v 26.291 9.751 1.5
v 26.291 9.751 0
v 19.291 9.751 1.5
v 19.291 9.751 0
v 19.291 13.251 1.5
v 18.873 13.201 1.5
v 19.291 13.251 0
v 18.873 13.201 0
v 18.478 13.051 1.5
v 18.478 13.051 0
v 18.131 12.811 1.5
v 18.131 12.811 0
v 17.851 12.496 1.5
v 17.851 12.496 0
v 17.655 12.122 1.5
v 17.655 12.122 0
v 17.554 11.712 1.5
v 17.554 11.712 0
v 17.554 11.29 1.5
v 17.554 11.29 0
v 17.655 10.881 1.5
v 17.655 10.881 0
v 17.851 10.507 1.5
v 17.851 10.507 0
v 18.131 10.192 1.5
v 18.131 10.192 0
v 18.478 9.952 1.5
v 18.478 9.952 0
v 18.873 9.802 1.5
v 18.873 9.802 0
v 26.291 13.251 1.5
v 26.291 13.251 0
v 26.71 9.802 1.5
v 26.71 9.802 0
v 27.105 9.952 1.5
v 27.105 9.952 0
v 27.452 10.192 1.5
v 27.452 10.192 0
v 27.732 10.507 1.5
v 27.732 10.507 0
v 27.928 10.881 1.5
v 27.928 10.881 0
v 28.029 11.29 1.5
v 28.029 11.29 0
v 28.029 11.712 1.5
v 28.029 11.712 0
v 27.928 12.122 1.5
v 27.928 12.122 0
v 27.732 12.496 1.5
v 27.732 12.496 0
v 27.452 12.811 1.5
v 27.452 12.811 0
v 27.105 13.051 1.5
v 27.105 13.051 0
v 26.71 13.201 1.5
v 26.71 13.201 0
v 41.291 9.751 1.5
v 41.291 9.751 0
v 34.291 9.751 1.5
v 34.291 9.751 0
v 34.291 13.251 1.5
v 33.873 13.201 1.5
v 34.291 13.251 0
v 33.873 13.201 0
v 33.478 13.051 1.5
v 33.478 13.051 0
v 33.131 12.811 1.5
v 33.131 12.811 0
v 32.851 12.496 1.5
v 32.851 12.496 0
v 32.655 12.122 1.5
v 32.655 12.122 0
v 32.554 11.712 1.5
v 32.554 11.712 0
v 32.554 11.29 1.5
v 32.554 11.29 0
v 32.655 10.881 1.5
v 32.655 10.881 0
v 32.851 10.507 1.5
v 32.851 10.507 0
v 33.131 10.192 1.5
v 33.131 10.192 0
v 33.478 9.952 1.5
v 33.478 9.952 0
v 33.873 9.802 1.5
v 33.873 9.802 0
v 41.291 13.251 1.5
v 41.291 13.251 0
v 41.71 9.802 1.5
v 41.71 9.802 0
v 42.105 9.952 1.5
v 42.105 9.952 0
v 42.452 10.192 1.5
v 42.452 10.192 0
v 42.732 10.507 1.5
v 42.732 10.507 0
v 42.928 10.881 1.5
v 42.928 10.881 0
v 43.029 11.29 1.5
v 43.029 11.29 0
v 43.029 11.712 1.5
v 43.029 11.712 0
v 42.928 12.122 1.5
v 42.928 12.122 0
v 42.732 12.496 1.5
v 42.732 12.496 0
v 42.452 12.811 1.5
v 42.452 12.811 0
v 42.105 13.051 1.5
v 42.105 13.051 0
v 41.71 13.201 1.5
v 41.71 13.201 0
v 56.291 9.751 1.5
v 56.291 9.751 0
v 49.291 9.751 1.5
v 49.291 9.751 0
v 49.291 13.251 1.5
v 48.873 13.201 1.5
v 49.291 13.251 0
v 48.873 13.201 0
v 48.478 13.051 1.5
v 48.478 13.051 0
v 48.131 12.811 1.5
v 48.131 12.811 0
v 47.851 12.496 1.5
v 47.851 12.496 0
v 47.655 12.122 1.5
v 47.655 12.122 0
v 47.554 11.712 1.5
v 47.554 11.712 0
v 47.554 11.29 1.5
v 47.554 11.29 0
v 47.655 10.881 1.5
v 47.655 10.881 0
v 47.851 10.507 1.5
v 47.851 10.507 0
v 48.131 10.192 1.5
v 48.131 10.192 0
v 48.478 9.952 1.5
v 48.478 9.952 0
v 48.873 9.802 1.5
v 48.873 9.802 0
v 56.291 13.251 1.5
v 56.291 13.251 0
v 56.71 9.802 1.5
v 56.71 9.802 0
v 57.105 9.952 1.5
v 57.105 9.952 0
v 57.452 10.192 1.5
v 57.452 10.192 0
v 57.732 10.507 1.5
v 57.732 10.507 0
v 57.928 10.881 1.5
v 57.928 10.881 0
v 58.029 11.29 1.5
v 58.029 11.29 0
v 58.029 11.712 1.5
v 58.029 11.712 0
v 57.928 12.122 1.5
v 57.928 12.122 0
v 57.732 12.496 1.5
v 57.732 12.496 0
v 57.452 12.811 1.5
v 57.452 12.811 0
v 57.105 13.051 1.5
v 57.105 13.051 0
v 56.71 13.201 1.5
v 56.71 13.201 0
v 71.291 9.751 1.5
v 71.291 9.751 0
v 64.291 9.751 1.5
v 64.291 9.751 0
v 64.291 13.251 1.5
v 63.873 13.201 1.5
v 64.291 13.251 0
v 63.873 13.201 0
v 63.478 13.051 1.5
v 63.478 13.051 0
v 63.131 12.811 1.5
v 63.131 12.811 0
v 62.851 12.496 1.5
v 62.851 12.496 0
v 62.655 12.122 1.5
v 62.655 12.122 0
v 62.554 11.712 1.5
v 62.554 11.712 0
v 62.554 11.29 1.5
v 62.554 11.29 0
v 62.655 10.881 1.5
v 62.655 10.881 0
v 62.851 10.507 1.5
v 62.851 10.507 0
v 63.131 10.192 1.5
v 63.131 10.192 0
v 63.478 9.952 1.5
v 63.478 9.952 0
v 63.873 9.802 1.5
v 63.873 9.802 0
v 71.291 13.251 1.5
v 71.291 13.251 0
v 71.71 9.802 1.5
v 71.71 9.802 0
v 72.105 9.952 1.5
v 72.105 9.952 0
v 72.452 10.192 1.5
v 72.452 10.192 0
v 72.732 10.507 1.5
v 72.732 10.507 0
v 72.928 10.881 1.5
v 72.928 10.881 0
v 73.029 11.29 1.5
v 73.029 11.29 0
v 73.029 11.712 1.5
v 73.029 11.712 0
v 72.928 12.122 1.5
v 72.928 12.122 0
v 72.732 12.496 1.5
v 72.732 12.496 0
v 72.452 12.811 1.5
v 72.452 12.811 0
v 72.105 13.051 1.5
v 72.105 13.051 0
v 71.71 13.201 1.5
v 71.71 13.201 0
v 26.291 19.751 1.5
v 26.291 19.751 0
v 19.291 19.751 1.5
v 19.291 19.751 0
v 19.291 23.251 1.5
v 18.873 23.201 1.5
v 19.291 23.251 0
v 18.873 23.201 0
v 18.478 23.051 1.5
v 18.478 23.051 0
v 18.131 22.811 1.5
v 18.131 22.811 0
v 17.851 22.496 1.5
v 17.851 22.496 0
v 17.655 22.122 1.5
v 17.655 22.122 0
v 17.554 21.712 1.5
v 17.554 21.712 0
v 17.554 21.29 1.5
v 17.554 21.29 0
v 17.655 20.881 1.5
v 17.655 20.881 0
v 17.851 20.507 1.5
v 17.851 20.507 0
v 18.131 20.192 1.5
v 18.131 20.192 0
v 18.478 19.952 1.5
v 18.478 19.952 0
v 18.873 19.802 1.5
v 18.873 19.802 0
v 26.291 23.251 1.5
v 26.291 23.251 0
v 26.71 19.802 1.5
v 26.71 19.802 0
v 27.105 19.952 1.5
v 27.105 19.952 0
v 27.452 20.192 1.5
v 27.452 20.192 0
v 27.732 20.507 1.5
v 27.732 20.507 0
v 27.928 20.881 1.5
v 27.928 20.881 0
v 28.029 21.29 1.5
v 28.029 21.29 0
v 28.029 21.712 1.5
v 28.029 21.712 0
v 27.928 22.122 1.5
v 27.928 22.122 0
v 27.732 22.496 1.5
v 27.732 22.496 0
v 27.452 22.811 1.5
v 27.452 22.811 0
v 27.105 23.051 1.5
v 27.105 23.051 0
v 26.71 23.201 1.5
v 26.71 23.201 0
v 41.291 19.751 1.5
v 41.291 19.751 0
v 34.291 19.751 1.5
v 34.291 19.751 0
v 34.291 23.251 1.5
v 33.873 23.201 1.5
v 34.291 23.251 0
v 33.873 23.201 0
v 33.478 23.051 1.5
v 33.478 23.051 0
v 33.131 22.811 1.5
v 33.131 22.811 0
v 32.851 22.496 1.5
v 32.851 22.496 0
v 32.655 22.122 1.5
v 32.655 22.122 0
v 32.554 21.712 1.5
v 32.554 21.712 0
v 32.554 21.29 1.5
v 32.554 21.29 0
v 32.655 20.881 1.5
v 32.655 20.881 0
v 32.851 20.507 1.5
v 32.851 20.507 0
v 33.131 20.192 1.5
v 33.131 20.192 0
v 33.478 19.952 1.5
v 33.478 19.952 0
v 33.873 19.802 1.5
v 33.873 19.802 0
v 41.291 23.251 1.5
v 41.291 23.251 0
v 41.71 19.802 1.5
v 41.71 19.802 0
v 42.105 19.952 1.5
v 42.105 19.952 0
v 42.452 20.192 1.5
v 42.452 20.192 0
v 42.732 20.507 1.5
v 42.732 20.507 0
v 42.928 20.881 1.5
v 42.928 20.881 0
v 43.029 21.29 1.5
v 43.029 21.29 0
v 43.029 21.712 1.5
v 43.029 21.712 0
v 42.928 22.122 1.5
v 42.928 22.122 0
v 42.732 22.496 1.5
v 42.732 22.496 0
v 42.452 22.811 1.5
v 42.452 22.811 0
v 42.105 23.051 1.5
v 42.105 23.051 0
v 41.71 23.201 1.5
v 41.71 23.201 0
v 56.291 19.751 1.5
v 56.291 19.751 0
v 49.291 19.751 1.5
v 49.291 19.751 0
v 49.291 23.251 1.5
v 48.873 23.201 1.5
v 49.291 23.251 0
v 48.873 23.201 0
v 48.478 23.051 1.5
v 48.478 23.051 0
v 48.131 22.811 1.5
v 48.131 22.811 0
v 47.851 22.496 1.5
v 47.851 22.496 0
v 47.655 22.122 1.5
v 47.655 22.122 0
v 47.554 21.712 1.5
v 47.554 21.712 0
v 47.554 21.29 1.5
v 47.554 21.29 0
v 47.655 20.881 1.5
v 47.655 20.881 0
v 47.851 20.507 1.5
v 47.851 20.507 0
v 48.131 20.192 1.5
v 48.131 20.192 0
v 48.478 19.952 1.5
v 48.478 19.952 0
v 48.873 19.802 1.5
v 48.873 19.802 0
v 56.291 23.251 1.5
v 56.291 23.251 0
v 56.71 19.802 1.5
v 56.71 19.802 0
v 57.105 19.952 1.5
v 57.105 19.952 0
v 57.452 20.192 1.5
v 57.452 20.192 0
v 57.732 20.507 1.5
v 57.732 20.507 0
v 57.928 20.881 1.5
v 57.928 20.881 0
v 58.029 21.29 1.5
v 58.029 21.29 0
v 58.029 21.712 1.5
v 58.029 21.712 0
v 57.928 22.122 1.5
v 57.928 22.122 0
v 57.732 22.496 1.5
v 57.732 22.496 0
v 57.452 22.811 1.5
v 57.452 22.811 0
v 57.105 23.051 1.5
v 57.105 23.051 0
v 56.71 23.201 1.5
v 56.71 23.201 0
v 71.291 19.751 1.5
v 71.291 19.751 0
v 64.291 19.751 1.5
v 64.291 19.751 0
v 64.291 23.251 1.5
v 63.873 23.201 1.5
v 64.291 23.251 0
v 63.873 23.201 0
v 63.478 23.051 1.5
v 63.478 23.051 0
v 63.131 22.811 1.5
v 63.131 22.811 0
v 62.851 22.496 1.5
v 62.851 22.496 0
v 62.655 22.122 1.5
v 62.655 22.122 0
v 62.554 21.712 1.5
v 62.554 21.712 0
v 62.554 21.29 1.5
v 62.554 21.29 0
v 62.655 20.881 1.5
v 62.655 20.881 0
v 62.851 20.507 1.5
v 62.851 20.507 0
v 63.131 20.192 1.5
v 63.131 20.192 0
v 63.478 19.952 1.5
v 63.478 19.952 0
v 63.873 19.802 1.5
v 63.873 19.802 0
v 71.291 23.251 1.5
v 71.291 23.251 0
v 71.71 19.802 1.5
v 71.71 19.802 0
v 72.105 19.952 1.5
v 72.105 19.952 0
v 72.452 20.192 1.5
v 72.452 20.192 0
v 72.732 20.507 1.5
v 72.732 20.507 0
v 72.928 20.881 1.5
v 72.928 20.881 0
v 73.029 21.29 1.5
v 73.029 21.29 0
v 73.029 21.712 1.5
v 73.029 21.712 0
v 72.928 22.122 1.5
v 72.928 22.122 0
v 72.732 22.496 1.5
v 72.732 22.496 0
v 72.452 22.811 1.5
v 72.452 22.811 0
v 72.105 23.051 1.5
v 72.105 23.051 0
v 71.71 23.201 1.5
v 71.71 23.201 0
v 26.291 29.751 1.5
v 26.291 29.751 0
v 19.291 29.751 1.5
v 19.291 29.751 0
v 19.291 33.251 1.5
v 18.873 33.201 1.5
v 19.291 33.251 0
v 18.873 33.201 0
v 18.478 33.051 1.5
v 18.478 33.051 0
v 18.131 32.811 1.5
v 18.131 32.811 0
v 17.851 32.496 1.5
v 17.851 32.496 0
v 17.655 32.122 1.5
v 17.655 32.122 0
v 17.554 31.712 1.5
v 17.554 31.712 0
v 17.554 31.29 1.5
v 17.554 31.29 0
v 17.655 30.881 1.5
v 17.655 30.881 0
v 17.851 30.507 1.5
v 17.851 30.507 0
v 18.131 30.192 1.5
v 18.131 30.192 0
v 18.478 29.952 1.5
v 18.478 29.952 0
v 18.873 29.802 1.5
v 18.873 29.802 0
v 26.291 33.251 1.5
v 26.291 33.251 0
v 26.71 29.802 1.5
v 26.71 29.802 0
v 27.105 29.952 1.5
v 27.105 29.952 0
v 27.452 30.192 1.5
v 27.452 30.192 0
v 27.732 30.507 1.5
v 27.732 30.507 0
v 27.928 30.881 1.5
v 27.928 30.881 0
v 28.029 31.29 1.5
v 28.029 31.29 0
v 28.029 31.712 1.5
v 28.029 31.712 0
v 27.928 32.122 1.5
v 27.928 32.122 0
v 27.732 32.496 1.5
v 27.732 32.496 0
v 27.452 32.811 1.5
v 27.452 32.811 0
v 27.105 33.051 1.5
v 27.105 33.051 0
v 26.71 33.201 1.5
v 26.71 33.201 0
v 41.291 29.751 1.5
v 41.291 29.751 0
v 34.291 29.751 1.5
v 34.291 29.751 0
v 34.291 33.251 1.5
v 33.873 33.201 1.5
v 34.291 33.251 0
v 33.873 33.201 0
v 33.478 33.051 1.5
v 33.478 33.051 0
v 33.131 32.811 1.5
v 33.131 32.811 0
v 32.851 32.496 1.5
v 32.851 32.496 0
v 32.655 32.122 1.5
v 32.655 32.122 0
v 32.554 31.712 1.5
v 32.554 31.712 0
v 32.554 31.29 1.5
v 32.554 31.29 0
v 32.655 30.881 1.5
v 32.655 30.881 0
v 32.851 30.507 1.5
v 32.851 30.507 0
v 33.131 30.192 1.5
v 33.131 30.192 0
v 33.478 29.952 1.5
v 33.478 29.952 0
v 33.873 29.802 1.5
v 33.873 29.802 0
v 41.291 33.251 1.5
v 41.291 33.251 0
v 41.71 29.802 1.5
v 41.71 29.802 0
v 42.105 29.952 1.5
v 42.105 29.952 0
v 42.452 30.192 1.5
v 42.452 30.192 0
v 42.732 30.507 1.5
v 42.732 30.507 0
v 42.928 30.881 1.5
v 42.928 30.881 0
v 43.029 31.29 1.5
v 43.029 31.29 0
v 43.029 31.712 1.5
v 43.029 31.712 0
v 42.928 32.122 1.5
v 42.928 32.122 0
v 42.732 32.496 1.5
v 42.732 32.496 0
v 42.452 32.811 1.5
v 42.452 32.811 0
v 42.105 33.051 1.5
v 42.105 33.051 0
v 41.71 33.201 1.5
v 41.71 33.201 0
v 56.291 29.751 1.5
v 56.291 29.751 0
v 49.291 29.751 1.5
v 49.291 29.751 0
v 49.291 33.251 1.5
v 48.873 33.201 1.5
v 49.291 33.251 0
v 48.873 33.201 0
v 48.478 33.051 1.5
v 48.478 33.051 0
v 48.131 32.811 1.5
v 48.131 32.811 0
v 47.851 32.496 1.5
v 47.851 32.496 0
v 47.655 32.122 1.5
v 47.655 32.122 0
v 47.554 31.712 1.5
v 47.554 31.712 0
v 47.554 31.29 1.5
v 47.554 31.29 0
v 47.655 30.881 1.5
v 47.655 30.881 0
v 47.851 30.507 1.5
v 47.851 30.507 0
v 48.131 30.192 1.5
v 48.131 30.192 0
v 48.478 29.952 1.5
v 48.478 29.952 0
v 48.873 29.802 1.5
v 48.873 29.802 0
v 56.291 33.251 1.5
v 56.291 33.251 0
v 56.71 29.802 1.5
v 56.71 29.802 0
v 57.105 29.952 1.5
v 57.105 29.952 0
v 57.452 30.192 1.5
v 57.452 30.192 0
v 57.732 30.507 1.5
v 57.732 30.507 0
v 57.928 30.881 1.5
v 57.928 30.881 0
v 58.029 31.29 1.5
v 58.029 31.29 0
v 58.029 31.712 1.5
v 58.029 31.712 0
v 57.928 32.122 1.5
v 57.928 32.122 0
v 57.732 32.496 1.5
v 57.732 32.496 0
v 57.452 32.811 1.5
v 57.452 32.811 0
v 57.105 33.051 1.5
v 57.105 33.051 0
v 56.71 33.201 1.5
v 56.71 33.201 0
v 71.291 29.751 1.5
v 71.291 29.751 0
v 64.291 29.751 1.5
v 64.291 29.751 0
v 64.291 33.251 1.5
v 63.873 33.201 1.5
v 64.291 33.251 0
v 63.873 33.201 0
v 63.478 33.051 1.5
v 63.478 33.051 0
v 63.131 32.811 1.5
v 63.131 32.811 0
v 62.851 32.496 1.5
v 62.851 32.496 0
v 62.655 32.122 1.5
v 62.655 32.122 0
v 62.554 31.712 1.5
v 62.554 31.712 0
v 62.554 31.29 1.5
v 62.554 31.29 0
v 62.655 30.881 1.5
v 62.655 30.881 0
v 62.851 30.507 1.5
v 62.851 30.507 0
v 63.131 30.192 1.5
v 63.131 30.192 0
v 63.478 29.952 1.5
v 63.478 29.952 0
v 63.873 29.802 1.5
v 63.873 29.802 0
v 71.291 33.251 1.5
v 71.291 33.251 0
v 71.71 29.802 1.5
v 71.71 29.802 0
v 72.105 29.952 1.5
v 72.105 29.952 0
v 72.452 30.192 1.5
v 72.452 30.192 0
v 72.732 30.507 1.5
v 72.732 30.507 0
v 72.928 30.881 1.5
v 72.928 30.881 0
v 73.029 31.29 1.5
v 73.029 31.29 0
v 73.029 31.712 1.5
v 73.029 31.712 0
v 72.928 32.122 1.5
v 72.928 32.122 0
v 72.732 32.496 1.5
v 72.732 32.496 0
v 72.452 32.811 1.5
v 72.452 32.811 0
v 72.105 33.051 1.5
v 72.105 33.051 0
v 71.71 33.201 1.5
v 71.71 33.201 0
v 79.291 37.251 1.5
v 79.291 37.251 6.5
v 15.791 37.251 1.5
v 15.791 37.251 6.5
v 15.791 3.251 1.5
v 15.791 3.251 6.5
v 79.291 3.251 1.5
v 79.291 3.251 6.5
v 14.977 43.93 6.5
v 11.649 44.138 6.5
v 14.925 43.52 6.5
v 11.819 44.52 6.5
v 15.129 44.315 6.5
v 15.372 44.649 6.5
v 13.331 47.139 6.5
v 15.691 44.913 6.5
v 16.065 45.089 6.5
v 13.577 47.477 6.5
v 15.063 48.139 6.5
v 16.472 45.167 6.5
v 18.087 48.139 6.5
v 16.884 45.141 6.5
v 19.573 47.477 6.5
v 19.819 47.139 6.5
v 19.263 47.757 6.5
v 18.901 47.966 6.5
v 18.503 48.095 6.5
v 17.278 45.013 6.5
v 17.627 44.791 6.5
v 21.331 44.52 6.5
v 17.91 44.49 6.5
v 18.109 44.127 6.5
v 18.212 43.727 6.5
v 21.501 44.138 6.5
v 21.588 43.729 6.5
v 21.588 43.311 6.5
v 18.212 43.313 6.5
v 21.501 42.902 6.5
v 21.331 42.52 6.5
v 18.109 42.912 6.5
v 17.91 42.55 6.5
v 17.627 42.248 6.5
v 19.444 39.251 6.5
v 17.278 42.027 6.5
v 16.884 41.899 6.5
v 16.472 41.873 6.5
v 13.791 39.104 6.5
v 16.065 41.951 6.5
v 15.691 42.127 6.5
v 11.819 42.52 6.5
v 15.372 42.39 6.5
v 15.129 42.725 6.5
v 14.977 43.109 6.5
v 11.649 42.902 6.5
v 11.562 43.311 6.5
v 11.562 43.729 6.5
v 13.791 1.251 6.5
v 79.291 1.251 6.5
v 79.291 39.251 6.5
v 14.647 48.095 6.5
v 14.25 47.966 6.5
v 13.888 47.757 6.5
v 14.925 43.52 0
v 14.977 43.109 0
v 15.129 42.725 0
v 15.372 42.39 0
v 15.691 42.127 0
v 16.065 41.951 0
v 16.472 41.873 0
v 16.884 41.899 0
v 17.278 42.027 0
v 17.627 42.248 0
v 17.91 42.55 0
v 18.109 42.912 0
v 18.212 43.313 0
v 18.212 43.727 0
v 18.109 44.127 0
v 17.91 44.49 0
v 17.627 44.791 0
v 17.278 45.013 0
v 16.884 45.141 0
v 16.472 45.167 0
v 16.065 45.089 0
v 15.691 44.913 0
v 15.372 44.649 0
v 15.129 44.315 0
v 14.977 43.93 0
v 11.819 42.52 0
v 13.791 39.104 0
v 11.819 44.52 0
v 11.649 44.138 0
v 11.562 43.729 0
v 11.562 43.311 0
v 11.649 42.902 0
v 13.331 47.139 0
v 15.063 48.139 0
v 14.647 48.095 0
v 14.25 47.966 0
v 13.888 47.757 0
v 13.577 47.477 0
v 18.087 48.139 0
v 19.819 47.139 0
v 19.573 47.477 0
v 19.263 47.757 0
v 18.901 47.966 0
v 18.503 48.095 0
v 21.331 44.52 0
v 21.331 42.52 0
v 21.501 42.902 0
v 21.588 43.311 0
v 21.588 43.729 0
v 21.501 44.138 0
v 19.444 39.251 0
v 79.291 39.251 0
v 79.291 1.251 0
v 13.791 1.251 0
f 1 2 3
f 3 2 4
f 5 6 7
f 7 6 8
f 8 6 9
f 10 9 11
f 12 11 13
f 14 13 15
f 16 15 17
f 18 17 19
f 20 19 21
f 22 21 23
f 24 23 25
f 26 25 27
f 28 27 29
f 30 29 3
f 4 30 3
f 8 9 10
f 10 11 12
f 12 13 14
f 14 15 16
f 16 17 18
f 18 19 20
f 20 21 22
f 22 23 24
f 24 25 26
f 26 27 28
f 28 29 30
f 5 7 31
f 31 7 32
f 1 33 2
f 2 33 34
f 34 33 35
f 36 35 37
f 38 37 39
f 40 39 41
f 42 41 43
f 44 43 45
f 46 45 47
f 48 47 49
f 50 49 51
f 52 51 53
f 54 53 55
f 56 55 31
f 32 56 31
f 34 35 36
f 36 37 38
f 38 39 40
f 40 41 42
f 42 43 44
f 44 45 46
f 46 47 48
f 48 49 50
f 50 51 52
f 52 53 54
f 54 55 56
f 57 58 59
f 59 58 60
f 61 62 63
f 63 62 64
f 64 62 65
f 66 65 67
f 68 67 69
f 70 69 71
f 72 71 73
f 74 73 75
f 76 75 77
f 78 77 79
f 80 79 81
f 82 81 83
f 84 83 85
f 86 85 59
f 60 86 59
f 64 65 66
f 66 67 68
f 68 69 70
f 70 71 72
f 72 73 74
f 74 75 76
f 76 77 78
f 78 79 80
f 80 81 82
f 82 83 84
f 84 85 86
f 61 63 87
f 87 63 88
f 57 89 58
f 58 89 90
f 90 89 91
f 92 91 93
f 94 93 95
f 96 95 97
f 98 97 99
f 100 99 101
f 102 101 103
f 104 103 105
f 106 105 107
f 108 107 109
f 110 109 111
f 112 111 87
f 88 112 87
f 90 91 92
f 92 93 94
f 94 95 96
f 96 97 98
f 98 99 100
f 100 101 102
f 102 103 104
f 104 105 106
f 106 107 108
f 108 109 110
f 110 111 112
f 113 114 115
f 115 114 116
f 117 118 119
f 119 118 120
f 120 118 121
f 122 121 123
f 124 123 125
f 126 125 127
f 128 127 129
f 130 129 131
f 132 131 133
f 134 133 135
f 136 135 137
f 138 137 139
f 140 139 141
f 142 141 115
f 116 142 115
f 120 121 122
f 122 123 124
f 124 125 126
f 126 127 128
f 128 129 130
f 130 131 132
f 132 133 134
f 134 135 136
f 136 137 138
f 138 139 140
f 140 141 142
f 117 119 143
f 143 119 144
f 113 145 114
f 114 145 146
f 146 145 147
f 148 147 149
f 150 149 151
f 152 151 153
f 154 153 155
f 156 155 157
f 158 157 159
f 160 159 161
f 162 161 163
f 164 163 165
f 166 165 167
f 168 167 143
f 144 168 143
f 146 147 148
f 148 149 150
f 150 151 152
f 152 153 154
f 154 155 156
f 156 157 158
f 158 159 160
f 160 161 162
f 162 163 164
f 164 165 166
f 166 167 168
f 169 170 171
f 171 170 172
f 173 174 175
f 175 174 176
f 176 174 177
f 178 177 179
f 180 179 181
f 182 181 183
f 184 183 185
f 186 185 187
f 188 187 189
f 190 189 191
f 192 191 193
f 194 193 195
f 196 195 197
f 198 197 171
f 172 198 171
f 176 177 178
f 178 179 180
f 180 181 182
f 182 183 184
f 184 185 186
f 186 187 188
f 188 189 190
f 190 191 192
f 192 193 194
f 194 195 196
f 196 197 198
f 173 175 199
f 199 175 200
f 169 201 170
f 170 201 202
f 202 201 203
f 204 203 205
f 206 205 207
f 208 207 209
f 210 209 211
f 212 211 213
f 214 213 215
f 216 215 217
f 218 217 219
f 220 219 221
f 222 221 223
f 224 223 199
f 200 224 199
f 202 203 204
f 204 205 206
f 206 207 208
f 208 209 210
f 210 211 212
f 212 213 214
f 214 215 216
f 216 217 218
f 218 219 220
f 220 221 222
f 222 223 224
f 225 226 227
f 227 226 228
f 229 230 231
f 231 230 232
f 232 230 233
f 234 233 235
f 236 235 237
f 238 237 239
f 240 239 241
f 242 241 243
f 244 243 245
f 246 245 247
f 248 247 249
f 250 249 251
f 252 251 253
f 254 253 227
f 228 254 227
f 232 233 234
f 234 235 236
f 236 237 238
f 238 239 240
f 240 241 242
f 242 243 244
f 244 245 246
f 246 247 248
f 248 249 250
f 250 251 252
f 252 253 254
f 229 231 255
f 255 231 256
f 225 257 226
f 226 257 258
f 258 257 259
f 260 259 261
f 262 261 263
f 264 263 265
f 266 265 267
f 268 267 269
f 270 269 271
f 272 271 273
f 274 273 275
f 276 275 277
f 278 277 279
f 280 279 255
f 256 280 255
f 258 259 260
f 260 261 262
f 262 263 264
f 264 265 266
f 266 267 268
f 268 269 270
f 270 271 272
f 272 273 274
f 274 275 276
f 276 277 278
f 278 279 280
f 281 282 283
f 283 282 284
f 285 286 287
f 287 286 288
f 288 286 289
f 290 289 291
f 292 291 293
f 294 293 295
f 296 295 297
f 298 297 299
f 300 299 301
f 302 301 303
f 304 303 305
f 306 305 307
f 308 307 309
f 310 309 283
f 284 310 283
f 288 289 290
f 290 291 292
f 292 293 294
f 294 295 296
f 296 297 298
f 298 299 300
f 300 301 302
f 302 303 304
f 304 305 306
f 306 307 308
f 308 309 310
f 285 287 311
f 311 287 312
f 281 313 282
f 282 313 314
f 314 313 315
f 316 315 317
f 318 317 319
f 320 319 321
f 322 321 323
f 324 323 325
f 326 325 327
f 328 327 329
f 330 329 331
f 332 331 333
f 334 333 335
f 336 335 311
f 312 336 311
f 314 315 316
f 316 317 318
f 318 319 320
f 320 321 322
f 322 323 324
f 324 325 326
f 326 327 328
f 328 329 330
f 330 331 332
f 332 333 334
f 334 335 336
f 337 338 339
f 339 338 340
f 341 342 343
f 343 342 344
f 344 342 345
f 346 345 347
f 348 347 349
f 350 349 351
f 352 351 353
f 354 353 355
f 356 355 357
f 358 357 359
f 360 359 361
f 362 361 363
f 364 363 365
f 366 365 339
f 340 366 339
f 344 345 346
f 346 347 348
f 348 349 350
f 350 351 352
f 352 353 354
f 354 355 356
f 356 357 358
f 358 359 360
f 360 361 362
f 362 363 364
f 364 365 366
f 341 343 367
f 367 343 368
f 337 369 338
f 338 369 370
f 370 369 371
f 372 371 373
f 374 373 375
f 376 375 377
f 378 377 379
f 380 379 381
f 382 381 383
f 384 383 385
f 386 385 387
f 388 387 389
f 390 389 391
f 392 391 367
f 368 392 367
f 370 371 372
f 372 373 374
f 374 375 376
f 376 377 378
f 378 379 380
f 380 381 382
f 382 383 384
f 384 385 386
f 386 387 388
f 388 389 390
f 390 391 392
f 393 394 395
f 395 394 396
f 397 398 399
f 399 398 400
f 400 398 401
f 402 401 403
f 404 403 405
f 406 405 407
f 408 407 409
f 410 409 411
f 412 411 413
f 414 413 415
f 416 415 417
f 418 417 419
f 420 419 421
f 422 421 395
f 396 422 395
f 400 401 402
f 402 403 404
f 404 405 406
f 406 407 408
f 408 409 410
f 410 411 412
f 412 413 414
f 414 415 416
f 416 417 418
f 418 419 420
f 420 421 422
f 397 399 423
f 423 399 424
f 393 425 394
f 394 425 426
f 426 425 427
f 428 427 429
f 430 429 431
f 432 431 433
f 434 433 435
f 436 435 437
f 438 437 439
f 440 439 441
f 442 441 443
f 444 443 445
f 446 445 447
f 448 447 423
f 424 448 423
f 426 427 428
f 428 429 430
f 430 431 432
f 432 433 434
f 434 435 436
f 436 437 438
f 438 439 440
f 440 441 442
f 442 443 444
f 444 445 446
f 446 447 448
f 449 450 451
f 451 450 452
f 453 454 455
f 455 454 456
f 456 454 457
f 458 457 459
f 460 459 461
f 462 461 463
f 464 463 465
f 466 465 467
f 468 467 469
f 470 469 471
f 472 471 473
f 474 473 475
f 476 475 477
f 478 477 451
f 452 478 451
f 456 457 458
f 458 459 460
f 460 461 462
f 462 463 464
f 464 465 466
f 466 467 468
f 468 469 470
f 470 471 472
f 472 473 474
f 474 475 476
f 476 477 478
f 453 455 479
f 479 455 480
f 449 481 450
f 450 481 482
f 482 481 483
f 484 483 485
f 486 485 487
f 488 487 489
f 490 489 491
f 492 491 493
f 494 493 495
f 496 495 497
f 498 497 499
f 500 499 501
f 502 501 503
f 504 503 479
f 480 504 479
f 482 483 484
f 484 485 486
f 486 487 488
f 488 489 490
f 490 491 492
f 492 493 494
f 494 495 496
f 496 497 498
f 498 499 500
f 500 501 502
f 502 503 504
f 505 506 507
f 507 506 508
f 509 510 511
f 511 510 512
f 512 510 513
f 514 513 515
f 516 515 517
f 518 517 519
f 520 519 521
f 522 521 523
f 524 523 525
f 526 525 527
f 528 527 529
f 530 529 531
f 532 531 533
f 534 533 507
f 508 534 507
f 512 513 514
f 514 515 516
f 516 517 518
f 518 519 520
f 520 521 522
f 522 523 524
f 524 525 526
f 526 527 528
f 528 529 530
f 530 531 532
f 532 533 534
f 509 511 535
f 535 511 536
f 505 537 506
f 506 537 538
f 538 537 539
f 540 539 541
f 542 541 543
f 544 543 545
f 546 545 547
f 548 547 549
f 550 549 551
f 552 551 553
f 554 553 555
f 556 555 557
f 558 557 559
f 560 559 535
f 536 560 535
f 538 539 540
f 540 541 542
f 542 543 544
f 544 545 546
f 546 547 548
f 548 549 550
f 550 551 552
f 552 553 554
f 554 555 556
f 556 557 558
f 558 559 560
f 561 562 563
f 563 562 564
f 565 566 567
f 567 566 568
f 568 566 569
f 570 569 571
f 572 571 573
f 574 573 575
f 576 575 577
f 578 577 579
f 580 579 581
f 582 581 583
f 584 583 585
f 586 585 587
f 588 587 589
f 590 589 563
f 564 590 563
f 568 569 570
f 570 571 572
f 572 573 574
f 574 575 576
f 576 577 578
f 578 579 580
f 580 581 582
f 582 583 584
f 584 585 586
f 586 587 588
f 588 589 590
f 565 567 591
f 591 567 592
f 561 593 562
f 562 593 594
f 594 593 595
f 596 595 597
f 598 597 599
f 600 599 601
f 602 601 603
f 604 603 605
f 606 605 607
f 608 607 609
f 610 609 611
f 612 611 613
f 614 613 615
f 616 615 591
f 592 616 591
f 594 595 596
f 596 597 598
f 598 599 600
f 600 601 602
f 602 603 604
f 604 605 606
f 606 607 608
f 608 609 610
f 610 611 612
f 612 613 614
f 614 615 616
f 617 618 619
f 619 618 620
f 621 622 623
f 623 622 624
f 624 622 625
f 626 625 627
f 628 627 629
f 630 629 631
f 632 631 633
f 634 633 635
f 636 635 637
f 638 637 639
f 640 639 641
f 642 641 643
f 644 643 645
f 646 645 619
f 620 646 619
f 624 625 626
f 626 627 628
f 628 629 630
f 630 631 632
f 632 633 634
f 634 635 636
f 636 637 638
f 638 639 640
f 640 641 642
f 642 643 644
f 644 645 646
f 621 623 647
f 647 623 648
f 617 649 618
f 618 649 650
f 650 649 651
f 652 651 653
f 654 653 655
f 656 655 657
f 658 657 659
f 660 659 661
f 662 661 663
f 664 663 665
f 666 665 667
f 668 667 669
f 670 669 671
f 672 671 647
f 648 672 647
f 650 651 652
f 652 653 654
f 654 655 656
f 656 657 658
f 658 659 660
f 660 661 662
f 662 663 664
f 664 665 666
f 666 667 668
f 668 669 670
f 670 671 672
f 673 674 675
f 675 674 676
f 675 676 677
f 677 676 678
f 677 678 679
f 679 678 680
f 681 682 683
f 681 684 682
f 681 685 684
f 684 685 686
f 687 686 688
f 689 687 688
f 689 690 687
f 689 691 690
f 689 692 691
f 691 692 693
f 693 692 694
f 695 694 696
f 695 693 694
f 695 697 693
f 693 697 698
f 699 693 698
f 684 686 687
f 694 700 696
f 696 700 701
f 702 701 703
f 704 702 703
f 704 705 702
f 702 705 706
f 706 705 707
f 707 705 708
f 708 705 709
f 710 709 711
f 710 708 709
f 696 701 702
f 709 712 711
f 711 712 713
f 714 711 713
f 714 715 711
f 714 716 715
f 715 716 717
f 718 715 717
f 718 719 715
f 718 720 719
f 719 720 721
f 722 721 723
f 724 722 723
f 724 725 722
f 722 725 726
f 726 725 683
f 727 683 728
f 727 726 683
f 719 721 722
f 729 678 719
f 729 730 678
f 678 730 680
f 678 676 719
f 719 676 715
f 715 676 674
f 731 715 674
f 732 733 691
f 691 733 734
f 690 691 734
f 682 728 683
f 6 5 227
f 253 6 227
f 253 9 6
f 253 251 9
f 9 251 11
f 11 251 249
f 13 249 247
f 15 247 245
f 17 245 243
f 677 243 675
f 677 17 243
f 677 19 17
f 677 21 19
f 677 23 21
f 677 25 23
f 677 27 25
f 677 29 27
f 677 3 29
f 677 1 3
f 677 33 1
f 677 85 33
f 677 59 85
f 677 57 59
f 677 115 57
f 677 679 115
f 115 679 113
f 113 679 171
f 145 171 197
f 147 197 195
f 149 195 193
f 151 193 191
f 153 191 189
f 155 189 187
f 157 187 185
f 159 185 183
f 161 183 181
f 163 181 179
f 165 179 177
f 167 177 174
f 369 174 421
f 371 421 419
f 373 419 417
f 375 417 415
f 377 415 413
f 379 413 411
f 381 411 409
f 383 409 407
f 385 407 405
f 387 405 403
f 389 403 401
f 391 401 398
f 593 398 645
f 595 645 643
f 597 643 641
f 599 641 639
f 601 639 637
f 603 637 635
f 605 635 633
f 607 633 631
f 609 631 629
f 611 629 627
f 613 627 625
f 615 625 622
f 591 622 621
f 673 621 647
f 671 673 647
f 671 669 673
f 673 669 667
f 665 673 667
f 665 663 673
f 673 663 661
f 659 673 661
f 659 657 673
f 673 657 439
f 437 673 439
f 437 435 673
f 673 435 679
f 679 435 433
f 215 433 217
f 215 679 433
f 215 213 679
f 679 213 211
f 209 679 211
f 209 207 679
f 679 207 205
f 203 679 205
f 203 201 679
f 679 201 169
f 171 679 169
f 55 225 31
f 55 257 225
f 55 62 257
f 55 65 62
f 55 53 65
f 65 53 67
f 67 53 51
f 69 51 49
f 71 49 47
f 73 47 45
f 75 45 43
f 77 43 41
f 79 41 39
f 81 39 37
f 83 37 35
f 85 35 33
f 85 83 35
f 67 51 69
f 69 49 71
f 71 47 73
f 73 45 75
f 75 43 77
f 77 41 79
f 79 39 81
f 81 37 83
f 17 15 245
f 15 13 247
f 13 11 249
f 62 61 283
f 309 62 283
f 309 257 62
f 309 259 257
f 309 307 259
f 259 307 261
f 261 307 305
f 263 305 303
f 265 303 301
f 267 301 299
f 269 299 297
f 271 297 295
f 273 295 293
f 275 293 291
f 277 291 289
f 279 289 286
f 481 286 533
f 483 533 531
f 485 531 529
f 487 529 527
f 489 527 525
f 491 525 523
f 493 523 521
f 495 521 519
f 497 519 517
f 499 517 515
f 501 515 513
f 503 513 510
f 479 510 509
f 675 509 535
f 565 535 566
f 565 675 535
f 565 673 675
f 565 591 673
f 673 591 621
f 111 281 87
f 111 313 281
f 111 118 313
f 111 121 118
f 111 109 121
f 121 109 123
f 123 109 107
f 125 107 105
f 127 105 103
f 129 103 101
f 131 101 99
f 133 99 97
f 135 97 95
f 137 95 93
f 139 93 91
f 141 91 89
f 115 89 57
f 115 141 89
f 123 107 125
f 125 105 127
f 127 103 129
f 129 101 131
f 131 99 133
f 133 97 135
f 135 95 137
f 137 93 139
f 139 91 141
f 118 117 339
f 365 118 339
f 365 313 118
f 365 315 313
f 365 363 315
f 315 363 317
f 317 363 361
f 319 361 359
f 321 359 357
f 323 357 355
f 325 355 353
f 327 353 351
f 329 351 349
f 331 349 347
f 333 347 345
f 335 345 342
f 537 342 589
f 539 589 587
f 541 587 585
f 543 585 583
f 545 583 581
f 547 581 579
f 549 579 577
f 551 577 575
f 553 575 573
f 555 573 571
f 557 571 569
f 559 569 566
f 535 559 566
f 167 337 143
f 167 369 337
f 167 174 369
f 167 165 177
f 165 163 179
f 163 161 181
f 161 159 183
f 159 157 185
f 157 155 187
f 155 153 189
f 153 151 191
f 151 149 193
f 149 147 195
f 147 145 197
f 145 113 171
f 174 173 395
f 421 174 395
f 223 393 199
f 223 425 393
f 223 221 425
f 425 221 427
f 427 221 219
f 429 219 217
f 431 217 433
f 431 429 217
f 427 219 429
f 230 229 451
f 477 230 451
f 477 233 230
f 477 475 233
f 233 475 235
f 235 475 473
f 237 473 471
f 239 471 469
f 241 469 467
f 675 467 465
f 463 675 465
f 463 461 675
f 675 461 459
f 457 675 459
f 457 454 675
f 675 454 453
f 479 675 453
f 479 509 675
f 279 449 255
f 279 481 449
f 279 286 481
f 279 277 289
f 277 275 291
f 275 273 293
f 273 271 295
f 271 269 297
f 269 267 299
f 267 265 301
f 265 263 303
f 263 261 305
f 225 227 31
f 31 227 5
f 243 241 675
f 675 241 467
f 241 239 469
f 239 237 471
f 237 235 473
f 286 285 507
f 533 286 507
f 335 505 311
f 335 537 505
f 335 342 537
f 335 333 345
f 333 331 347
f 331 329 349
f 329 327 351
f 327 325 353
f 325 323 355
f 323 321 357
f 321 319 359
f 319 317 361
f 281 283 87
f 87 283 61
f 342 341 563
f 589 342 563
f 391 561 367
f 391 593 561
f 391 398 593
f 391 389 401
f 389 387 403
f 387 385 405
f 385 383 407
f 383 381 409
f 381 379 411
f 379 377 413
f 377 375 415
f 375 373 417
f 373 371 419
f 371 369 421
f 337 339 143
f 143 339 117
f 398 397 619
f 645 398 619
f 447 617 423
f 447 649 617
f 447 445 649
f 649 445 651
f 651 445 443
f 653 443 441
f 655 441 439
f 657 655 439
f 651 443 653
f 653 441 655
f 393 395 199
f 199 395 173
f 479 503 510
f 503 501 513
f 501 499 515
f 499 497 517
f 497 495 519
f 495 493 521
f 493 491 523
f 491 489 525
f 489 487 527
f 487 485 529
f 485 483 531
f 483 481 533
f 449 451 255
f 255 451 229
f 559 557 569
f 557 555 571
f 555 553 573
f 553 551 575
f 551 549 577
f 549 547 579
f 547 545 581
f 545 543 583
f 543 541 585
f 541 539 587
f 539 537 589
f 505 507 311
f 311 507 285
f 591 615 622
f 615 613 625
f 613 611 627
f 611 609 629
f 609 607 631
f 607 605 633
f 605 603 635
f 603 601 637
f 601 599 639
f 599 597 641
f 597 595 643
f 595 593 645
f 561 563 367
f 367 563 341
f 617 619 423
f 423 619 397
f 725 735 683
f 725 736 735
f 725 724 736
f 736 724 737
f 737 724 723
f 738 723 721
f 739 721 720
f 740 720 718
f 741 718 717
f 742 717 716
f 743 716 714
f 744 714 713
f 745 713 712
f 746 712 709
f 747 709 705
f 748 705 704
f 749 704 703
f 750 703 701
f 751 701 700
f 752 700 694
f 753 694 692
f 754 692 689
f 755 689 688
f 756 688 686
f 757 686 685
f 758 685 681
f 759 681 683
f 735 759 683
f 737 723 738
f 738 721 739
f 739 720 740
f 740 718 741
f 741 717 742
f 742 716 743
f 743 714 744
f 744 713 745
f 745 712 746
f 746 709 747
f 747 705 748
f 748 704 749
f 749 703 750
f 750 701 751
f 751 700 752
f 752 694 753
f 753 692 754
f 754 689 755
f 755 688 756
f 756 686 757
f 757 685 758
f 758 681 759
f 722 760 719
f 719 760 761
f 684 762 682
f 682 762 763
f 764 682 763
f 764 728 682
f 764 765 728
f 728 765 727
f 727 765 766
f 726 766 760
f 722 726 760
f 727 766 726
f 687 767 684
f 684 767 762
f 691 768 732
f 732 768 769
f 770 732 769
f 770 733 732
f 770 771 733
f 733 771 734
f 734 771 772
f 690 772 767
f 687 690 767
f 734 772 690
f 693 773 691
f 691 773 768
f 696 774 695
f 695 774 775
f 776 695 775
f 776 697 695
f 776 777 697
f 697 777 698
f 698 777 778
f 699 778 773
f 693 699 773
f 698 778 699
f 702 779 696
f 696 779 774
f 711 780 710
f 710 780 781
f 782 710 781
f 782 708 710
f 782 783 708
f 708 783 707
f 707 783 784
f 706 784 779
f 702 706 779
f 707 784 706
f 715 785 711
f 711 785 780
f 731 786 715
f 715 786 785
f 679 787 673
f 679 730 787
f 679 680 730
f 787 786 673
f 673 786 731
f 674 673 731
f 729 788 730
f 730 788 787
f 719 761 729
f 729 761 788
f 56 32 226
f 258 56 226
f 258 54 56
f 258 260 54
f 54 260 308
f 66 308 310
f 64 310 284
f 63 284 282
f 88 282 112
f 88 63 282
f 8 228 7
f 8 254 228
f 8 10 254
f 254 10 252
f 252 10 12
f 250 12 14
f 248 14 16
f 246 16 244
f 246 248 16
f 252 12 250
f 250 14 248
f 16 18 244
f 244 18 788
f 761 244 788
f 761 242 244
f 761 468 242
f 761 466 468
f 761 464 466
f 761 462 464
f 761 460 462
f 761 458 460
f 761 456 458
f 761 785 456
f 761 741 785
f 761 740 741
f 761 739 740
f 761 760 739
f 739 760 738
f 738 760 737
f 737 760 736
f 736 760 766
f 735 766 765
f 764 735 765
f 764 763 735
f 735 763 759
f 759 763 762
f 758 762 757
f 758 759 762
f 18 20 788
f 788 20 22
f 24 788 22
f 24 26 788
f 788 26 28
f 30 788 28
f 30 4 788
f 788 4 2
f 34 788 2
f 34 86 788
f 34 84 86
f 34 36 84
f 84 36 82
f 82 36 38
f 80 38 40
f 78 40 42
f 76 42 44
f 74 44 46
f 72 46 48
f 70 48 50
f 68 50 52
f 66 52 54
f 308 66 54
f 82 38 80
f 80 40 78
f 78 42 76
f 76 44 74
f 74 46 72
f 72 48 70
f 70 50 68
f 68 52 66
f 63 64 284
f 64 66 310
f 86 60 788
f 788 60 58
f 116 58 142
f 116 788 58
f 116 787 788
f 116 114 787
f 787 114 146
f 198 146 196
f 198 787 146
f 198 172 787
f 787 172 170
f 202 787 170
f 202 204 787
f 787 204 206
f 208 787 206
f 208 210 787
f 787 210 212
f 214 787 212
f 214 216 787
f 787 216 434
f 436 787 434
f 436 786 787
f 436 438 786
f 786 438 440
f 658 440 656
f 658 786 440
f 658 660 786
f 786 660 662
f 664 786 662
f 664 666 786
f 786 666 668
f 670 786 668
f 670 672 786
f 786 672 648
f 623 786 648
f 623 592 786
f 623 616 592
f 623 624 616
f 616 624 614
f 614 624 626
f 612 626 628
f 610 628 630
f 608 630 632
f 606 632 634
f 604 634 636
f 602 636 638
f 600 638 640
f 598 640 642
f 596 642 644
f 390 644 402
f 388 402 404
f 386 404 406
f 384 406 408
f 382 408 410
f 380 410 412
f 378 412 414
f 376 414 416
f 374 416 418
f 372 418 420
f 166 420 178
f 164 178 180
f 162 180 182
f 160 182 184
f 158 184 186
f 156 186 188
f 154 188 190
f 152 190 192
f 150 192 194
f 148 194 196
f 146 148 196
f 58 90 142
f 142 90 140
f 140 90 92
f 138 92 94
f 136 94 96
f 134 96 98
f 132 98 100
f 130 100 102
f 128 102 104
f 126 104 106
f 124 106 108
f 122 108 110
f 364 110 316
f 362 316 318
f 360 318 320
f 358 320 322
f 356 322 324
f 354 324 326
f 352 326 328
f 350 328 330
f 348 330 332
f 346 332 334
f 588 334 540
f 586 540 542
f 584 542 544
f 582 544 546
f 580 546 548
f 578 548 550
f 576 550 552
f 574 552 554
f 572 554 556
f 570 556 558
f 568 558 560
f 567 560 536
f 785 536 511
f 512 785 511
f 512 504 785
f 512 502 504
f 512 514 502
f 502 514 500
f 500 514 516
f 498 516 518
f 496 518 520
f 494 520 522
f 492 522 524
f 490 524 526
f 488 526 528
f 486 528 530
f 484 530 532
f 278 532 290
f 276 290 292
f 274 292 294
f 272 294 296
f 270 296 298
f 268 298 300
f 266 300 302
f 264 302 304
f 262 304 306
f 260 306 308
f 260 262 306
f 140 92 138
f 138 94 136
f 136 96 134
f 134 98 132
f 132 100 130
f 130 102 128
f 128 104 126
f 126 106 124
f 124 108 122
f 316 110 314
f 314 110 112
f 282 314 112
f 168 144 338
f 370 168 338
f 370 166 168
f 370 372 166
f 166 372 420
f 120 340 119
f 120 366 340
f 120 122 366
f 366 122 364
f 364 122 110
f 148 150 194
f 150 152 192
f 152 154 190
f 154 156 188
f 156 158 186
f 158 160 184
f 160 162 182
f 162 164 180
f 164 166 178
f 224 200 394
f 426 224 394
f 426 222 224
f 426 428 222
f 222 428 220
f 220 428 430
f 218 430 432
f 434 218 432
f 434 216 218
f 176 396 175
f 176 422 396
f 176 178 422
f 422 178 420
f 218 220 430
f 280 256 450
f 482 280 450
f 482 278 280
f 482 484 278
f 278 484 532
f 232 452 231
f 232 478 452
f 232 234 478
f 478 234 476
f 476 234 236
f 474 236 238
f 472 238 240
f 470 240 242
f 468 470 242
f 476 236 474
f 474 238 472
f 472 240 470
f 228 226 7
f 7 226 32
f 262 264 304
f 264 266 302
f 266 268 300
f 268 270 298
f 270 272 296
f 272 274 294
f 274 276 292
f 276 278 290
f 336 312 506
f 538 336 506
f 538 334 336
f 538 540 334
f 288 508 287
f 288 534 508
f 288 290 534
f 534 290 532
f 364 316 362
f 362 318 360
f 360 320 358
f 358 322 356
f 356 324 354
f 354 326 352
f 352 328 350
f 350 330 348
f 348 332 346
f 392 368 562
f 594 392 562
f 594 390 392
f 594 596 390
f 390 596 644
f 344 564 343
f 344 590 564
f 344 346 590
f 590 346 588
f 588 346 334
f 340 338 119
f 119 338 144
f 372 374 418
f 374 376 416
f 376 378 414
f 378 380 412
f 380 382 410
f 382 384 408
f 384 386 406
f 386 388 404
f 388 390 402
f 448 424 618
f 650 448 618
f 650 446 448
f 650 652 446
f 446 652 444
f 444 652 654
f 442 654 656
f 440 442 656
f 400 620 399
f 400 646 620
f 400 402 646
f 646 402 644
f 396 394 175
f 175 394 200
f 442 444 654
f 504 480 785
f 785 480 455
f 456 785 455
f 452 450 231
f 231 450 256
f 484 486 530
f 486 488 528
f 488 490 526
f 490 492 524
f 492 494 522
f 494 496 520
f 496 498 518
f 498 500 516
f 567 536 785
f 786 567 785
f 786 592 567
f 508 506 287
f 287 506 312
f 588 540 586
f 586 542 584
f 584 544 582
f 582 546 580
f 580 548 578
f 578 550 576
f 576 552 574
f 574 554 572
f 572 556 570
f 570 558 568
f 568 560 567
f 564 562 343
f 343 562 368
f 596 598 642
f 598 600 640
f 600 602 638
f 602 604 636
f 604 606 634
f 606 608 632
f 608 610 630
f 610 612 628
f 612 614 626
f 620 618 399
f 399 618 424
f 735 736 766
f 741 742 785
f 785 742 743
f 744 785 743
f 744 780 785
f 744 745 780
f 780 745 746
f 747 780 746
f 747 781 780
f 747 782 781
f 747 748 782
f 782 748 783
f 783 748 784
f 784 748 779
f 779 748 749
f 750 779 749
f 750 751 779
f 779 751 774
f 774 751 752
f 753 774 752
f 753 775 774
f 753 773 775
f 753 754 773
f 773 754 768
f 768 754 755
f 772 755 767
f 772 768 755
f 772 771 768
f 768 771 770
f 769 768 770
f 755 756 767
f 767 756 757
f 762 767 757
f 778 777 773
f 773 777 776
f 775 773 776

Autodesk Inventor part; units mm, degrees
ref_plane "YZ Plane" through (0, 0, 0) normal (1, 0, 0) x (0, 1, 0)
ref_plane "XZ Plane" through (0, 0, 0) normal (0, 1, 0) x (-1, 0, 0)
ref_plane "XY Plane" through (0, 0, 0) normal (0, 0, 1) x (1, 0, 0)
sketch "Sketch1" plane through (0, 0, 0) normal (0, 0, 1) x (1, 0, 0)
  circle A0 centre (16.5752, 43.5198) radius 1.65
  line L0 (21.3312, 42.5198) -> (19.4442, 39.2514)
  arc A1 (21.3312, 42.5198) -> (21.3312, 44.5198) centre (19.5992, 43.5198) ccw
  line L1 (19.8192, 47.1386) -> (21.3312, 44.5198)
  arc A2 (19.8192, 47.1386) -> (18.0872, 48.1386) centre (18.0872, 46.1386) ccw
  line L2 (15.0633, 48.1386) -> (18.0872, 48.1386)
  arc A3 (15.0633, 48.1386) -> (13.3312, 47.1386) centre (15.0633, 46.1386) ccw
  line L3 (11.8192, 44.5198) -> (13.3312, 47.1386)
  arc A4 (11.8192, 44.5198) -> (11.8192, 42.5198) centre (13.5513, 43.5198) ccw
  line L4 (13.7915, 39.1038) -> (11.8192, 42.5198)
  line L5 (13.7915, 39.1038) -> (13.7915, 1.2514)
  line L6 (13.7915, 1.2514) -> (79.2915, 1.2514)
  line L7 (79.2915, 1.2514) -> (79.2915, 39.2514)
  line L8 (79.2915, 39.2514) -> (19.4442, 39.2514)
  point P0 (0, 0)
  point P1 (0, 0)
  dimension "d0" = 65.5
  dimension "d1" = 38
  dimension "d3" = 37.8524
  dimension "d4" = 90
  dimension "d5" = 90
  dimension "d6" = 5.6528
  dimension "d10" = 90
extrude "Extrusion1" add sketch "Sketch1" along normal blind 1.5
sketch "Sketch2" plane through (0, 0, 0) normal (0, 0, -1) x (-1, 0, 0)
  circle A0 centre (-16.5752, 43.5198) radius 1.65 projected
  line L0 (-13.7915, 1.2514) -> (-13.7915, 39.1038) projected
  line L1 (-13.7915, 39.1038) -> (-11.8192, 42.5198) projected
  arc A1 (-11.8192, 42.5198) -> (-11.8192, 44.5198) centre (-13.5513, 43.5198) ccw projected
  line L2 (-11.8192, 44.5198) -> (-13.3312, 47.1386) projected
  arc A2 (-13.3312, 47.1386) -> (-15.0633, 48.1386) centre (-15.0633, 46.1386) ccw projected
  line L3 (-15.0633, 48.1386) -> (-18.0872, 48.1386) projected
  arc A3 (-18.0872, 48.1386) -> (-19.8192, 47.1386) centre (-18.0872, 46.1386) ccw projected
  line L4 (-19.8192, 47.1386) -> (-21.3312, 44.5198) projected
  arc A4 (-21.3312, 44.5198) -> (-21.3312, 42.5198) centre (-19.5992, 43.5198) ccw projected
  line L5 (-21.3312, 42.5198) -> (-19.4442, 39.2514) projected
  line L6 (-19.4442, 39.2514) -> (-79.2915, 39.2514) projected
  line L7 (-79.2915, 39.2514) -> (-79.2915, 1.2514) projected
  line L8 (-79.2915, 1.2514) -> (-13.7915, 1.2514) projected
  line L9 (-77.7629, 37.2514) -> (-15.7915, 37.2514)
  line L10 (-15.7915, 37.2514) -> (-15.7915, 3.2514)
  line L11 (-15.7915, 3.2514) -> (-77.7629, 3.2514)
  line L12 (-77.7629, 37.2514) -> (-79.2915, 37.2514)
  line L13 (-77.7629, 3.2514) -> (-79.2915, 3.2514)
  point P0 (0, 0)
  dimension "d11" = 2
  dimension "d12" = 2
  dimension "d13" = 2
extrude "Extrusion2" add sketch "Sketch2" against normal blind 6.5 contours L8 L7 L13 L11 L10 L9 L12 L6 L5 A4 L4 A3 L3 A2 L2 A1 L1 L0
sketch "Sketch3" plane through (0, 0, 0) normal (0, 0, -1) x (-1, 0, 0)
  line L0 (-79.2915, 39.2514) -> (-79.2915, 1.2514) projected
  line L1 (-19.4442, 39.2514) -> (-79.2915, 39.2514) projected
  line L2 (-71.2915, 33.2514) -> (-64.2915, 33.2514)
  line L3 (-64.2915, 33.2514) -> (-64.2915, 29.7514)
  line L4 (-64.2915, 29.7514) -> (-71.2915, 29.7514)
  line L5 (-71.2915, 29.7514) -> (-71.2915, 33.2514)
  circle A0 centre (-71.2915, 31.5014) radius 1.75
  circle A1 centre (-64.2915, 31.5014) radius 1.75
  point P0 (0, 0)
  dimension "d16" = 3.5
  dimension "d17" = 7
  dimension "d18" = 6
  dimension "d19" = 8
extrude "Extrusion3" cut sketch "Sketch3" against normal blind 2.5
pattern_linear "Rectangular Pattern1" count 4 spacing 15 along (-1, 0, 0) count 3 spacing 10 along (0, -1, 0) of "Extrusion3"
properties part number "case add on sdr top"
